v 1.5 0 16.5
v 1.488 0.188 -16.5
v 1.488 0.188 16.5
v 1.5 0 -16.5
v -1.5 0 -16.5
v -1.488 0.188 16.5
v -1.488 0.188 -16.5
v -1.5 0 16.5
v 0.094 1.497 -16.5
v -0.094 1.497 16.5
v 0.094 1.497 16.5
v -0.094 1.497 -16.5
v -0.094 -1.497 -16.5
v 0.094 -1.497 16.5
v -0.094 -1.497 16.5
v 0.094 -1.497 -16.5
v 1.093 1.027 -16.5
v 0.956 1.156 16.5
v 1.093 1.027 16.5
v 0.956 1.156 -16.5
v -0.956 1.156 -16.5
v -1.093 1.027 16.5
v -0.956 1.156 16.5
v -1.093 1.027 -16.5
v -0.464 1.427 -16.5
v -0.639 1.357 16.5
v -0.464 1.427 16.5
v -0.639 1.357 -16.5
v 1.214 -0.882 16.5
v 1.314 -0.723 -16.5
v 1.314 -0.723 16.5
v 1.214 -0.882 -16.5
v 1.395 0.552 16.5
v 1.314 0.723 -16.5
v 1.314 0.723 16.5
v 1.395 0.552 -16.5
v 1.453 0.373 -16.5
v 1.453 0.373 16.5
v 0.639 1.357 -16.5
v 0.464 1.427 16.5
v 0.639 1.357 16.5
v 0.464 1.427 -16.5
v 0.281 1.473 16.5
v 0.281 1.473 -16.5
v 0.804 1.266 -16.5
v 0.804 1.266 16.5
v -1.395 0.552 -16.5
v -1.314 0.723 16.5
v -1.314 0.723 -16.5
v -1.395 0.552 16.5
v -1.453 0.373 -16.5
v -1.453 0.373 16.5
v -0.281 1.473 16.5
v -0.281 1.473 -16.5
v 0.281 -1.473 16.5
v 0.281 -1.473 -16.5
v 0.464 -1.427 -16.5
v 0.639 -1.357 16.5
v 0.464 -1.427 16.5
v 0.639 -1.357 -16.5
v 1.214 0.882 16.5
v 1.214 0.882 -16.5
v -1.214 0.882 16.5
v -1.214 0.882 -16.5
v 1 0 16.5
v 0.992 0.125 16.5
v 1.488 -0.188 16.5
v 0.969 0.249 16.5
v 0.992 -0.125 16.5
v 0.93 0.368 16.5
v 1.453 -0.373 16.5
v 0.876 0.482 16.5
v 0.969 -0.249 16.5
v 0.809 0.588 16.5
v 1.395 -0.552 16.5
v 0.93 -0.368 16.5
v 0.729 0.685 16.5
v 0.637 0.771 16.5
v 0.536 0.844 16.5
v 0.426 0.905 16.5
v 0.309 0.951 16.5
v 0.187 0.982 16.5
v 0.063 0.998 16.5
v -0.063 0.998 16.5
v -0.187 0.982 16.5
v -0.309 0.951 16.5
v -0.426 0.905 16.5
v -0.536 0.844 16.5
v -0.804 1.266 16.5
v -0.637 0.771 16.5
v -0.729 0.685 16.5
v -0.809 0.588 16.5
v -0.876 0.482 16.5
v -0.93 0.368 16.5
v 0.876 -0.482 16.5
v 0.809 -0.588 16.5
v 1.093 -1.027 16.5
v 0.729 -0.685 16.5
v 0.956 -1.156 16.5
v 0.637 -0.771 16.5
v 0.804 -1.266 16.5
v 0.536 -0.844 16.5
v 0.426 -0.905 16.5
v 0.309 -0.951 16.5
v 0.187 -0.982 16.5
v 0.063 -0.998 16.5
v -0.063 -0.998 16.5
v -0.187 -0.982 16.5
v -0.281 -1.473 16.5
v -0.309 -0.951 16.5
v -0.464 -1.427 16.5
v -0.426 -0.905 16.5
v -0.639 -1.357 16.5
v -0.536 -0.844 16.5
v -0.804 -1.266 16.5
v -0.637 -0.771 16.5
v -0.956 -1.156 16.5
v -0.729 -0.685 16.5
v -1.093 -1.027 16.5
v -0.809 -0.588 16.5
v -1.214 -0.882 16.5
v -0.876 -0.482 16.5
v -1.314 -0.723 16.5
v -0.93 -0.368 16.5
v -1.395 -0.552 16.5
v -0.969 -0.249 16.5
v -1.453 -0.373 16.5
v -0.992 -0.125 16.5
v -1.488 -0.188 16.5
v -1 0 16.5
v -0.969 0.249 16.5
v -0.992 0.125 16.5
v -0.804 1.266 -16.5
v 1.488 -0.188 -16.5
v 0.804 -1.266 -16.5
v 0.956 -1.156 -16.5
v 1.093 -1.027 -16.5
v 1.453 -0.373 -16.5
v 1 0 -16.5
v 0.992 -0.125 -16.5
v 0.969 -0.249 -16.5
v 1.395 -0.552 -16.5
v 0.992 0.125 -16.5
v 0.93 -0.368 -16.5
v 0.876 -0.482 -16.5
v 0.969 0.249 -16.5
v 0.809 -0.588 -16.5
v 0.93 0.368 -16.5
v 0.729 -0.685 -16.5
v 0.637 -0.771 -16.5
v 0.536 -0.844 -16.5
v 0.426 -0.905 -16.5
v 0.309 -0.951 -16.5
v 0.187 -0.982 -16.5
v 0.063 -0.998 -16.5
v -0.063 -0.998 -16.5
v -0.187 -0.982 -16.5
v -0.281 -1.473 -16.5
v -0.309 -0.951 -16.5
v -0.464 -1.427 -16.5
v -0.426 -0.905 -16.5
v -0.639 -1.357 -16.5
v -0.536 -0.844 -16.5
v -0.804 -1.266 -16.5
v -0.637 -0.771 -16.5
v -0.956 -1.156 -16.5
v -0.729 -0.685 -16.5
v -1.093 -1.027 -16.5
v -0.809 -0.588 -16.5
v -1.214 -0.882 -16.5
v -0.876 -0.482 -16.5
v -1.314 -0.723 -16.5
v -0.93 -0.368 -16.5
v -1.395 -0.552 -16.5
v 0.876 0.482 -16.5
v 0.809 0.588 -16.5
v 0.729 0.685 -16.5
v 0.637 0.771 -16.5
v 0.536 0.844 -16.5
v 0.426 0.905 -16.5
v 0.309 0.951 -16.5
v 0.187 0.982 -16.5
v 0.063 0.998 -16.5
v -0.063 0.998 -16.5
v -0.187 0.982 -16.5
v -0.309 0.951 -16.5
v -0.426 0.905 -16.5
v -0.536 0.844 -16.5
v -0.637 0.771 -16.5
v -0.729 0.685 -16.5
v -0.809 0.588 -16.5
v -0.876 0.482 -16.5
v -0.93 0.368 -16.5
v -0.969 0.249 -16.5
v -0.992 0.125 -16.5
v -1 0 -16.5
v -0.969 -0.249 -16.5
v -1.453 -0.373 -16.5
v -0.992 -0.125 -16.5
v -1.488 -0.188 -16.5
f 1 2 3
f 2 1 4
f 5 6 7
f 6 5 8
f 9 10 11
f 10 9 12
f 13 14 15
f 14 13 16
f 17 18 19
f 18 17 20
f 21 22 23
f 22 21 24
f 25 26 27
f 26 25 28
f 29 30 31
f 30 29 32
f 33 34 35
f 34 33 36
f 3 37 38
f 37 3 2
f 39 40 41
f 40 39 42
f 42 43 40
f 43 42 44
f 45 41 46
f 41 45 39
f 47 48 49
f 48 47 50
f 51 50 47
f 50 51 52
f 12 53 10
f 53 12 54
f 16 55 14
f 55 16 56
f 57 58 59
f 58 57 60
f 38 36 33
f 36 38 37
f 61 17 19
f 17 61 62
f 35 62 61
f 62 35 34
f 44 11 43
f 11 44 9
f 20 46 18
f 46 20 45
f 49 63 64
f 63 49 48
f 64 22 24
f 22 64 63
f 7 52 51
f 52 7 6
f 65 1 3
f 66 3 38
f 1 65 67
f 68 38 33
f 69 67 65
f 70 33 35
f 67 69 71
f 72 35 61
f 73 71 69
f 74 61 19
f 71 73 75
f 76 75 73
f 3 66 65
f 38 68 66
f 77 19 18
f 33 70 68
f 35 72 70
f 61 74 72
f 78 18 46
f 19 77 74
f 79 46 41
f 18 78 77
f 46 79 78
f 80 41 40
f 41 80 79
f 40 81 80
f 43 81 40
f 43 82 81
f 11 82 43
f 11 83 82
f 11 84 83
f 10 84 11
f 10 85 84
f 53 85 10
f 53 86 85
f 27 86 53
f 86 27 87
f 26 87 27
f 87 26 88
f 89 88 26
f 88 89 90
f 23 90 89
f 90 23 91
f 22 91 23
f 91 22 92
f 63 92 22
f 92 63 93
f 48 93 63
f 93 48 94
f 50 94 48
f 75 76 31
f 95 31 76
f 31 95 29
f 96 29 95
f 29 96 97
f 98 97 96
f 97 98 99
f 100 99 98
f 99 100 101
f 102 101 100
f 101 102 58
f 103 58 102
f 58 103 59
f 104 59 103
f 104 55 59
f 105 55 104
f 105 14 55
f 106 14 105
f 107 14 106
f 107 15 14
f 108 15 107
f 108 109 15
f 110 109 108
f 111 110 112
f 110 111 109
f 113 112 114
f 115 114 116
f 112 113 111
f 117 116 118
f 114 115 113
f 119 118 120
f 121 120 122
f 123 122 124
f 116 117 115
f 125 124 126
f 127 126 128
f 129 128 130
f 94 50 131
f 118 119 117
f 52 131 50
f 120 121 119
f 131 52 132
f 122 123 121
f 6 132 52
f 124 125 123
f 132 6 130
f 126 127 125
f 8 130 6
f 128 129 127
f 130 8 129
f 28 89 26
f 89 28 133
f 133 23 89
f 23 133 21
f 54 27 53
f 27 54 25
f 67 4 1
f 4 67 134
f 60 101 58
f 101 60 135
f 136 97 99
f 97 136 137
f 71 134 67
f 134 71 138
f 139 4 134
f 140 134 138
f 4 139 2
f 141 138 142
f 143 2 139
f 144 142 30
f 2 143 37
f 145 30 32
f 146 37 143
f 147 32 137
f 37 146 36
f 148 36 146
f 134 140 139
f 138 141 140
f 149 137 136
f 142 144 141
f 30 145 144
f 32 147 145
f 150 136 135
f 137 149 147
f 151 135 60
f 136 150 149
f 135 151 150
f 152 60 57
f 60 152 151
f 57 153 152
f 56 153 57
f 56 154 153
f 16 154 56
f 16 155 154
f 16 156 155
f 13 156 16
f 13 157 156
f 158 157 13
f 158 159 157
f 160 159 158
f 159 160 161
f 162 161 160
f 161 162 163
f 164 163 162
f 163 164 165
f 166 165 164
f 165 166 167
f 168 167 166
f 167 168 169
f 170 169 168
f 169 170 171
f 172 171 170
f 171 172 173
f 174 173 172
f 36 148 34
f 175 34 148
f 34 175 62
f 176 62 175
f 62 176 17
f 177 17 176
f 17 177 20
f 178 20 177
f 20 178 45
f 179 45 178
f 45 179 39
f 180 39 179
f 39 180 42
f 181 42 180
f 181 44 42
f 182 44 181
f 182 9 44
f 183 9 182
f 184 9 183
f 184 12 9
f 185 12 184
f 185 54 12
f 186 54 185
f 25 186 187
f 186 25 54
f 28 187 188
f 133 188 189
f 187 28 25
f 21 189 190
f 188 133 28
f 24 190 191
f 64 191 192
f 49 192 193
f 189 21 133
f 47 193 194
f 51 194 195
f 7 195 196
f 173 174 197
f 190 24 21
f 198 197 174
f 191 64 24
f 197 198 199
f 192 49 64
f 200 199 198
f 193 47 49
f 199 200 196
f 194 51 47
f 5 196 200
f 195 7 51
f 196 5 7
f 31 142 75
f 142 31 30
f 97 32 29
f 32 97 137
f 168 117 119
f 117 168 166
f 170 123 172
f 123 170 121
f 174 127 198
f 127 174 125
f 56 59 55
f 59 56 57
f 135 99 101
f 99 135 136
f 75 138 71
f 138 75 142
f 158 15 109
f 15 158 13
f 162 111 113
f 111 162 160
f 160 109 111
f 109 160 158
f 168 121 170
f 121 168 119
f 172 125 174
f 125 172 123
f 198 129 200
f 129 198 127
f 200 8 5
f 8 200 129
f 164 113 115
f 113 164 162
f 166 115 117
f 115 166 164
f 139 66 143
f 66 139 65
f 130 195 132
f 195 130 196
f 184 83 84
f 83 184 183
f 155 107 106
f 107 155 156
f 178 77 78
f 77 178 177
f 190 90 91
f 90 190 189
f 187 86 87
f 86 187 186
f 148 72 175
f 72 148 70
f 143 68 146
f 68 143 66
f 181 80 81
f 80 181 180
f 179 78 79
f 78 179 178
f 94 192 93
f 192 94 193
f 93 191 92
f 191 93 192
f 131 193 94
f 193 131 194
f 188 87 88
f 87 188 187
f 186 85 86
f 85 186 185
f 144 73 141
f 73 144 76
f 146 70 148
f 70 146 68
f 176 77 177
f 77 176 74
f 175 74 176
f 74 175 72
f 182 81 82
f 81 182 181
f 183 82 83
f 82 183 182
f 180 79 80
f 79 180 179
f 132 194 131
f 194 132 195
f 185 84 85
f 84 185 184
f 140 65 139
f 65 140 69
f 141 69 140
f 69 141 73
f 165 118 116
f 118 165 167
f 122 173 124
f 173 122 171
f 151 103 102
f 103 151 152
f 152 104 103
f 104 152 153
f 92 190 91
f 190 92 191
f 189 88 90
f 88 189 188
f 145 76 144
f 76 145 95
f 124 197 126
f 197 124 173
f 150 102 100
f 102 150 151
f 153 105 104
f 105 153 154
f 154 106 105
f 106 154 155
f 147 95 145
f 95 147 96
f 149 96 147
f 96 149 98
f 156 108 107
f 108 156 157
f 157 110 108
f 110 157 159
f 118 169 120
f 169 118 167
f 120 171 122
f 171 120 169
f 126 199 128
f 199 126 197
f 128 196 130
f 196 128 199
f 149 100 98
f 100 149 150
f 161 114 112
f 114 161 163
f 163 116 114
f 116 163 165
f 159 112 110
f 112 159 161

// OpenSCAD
$fn = 50;


difference() {
	union() {
		translate(v = [0, 0, -16.5000000000]) {
			cylinder(h = 33, r = 1.5000000000);
		}
	}
	union() {
		translate(v = [0, 0, -100.0000000000]) {
			cylinder(h = 200, r = 1.0000000000);
		}
	}
}
